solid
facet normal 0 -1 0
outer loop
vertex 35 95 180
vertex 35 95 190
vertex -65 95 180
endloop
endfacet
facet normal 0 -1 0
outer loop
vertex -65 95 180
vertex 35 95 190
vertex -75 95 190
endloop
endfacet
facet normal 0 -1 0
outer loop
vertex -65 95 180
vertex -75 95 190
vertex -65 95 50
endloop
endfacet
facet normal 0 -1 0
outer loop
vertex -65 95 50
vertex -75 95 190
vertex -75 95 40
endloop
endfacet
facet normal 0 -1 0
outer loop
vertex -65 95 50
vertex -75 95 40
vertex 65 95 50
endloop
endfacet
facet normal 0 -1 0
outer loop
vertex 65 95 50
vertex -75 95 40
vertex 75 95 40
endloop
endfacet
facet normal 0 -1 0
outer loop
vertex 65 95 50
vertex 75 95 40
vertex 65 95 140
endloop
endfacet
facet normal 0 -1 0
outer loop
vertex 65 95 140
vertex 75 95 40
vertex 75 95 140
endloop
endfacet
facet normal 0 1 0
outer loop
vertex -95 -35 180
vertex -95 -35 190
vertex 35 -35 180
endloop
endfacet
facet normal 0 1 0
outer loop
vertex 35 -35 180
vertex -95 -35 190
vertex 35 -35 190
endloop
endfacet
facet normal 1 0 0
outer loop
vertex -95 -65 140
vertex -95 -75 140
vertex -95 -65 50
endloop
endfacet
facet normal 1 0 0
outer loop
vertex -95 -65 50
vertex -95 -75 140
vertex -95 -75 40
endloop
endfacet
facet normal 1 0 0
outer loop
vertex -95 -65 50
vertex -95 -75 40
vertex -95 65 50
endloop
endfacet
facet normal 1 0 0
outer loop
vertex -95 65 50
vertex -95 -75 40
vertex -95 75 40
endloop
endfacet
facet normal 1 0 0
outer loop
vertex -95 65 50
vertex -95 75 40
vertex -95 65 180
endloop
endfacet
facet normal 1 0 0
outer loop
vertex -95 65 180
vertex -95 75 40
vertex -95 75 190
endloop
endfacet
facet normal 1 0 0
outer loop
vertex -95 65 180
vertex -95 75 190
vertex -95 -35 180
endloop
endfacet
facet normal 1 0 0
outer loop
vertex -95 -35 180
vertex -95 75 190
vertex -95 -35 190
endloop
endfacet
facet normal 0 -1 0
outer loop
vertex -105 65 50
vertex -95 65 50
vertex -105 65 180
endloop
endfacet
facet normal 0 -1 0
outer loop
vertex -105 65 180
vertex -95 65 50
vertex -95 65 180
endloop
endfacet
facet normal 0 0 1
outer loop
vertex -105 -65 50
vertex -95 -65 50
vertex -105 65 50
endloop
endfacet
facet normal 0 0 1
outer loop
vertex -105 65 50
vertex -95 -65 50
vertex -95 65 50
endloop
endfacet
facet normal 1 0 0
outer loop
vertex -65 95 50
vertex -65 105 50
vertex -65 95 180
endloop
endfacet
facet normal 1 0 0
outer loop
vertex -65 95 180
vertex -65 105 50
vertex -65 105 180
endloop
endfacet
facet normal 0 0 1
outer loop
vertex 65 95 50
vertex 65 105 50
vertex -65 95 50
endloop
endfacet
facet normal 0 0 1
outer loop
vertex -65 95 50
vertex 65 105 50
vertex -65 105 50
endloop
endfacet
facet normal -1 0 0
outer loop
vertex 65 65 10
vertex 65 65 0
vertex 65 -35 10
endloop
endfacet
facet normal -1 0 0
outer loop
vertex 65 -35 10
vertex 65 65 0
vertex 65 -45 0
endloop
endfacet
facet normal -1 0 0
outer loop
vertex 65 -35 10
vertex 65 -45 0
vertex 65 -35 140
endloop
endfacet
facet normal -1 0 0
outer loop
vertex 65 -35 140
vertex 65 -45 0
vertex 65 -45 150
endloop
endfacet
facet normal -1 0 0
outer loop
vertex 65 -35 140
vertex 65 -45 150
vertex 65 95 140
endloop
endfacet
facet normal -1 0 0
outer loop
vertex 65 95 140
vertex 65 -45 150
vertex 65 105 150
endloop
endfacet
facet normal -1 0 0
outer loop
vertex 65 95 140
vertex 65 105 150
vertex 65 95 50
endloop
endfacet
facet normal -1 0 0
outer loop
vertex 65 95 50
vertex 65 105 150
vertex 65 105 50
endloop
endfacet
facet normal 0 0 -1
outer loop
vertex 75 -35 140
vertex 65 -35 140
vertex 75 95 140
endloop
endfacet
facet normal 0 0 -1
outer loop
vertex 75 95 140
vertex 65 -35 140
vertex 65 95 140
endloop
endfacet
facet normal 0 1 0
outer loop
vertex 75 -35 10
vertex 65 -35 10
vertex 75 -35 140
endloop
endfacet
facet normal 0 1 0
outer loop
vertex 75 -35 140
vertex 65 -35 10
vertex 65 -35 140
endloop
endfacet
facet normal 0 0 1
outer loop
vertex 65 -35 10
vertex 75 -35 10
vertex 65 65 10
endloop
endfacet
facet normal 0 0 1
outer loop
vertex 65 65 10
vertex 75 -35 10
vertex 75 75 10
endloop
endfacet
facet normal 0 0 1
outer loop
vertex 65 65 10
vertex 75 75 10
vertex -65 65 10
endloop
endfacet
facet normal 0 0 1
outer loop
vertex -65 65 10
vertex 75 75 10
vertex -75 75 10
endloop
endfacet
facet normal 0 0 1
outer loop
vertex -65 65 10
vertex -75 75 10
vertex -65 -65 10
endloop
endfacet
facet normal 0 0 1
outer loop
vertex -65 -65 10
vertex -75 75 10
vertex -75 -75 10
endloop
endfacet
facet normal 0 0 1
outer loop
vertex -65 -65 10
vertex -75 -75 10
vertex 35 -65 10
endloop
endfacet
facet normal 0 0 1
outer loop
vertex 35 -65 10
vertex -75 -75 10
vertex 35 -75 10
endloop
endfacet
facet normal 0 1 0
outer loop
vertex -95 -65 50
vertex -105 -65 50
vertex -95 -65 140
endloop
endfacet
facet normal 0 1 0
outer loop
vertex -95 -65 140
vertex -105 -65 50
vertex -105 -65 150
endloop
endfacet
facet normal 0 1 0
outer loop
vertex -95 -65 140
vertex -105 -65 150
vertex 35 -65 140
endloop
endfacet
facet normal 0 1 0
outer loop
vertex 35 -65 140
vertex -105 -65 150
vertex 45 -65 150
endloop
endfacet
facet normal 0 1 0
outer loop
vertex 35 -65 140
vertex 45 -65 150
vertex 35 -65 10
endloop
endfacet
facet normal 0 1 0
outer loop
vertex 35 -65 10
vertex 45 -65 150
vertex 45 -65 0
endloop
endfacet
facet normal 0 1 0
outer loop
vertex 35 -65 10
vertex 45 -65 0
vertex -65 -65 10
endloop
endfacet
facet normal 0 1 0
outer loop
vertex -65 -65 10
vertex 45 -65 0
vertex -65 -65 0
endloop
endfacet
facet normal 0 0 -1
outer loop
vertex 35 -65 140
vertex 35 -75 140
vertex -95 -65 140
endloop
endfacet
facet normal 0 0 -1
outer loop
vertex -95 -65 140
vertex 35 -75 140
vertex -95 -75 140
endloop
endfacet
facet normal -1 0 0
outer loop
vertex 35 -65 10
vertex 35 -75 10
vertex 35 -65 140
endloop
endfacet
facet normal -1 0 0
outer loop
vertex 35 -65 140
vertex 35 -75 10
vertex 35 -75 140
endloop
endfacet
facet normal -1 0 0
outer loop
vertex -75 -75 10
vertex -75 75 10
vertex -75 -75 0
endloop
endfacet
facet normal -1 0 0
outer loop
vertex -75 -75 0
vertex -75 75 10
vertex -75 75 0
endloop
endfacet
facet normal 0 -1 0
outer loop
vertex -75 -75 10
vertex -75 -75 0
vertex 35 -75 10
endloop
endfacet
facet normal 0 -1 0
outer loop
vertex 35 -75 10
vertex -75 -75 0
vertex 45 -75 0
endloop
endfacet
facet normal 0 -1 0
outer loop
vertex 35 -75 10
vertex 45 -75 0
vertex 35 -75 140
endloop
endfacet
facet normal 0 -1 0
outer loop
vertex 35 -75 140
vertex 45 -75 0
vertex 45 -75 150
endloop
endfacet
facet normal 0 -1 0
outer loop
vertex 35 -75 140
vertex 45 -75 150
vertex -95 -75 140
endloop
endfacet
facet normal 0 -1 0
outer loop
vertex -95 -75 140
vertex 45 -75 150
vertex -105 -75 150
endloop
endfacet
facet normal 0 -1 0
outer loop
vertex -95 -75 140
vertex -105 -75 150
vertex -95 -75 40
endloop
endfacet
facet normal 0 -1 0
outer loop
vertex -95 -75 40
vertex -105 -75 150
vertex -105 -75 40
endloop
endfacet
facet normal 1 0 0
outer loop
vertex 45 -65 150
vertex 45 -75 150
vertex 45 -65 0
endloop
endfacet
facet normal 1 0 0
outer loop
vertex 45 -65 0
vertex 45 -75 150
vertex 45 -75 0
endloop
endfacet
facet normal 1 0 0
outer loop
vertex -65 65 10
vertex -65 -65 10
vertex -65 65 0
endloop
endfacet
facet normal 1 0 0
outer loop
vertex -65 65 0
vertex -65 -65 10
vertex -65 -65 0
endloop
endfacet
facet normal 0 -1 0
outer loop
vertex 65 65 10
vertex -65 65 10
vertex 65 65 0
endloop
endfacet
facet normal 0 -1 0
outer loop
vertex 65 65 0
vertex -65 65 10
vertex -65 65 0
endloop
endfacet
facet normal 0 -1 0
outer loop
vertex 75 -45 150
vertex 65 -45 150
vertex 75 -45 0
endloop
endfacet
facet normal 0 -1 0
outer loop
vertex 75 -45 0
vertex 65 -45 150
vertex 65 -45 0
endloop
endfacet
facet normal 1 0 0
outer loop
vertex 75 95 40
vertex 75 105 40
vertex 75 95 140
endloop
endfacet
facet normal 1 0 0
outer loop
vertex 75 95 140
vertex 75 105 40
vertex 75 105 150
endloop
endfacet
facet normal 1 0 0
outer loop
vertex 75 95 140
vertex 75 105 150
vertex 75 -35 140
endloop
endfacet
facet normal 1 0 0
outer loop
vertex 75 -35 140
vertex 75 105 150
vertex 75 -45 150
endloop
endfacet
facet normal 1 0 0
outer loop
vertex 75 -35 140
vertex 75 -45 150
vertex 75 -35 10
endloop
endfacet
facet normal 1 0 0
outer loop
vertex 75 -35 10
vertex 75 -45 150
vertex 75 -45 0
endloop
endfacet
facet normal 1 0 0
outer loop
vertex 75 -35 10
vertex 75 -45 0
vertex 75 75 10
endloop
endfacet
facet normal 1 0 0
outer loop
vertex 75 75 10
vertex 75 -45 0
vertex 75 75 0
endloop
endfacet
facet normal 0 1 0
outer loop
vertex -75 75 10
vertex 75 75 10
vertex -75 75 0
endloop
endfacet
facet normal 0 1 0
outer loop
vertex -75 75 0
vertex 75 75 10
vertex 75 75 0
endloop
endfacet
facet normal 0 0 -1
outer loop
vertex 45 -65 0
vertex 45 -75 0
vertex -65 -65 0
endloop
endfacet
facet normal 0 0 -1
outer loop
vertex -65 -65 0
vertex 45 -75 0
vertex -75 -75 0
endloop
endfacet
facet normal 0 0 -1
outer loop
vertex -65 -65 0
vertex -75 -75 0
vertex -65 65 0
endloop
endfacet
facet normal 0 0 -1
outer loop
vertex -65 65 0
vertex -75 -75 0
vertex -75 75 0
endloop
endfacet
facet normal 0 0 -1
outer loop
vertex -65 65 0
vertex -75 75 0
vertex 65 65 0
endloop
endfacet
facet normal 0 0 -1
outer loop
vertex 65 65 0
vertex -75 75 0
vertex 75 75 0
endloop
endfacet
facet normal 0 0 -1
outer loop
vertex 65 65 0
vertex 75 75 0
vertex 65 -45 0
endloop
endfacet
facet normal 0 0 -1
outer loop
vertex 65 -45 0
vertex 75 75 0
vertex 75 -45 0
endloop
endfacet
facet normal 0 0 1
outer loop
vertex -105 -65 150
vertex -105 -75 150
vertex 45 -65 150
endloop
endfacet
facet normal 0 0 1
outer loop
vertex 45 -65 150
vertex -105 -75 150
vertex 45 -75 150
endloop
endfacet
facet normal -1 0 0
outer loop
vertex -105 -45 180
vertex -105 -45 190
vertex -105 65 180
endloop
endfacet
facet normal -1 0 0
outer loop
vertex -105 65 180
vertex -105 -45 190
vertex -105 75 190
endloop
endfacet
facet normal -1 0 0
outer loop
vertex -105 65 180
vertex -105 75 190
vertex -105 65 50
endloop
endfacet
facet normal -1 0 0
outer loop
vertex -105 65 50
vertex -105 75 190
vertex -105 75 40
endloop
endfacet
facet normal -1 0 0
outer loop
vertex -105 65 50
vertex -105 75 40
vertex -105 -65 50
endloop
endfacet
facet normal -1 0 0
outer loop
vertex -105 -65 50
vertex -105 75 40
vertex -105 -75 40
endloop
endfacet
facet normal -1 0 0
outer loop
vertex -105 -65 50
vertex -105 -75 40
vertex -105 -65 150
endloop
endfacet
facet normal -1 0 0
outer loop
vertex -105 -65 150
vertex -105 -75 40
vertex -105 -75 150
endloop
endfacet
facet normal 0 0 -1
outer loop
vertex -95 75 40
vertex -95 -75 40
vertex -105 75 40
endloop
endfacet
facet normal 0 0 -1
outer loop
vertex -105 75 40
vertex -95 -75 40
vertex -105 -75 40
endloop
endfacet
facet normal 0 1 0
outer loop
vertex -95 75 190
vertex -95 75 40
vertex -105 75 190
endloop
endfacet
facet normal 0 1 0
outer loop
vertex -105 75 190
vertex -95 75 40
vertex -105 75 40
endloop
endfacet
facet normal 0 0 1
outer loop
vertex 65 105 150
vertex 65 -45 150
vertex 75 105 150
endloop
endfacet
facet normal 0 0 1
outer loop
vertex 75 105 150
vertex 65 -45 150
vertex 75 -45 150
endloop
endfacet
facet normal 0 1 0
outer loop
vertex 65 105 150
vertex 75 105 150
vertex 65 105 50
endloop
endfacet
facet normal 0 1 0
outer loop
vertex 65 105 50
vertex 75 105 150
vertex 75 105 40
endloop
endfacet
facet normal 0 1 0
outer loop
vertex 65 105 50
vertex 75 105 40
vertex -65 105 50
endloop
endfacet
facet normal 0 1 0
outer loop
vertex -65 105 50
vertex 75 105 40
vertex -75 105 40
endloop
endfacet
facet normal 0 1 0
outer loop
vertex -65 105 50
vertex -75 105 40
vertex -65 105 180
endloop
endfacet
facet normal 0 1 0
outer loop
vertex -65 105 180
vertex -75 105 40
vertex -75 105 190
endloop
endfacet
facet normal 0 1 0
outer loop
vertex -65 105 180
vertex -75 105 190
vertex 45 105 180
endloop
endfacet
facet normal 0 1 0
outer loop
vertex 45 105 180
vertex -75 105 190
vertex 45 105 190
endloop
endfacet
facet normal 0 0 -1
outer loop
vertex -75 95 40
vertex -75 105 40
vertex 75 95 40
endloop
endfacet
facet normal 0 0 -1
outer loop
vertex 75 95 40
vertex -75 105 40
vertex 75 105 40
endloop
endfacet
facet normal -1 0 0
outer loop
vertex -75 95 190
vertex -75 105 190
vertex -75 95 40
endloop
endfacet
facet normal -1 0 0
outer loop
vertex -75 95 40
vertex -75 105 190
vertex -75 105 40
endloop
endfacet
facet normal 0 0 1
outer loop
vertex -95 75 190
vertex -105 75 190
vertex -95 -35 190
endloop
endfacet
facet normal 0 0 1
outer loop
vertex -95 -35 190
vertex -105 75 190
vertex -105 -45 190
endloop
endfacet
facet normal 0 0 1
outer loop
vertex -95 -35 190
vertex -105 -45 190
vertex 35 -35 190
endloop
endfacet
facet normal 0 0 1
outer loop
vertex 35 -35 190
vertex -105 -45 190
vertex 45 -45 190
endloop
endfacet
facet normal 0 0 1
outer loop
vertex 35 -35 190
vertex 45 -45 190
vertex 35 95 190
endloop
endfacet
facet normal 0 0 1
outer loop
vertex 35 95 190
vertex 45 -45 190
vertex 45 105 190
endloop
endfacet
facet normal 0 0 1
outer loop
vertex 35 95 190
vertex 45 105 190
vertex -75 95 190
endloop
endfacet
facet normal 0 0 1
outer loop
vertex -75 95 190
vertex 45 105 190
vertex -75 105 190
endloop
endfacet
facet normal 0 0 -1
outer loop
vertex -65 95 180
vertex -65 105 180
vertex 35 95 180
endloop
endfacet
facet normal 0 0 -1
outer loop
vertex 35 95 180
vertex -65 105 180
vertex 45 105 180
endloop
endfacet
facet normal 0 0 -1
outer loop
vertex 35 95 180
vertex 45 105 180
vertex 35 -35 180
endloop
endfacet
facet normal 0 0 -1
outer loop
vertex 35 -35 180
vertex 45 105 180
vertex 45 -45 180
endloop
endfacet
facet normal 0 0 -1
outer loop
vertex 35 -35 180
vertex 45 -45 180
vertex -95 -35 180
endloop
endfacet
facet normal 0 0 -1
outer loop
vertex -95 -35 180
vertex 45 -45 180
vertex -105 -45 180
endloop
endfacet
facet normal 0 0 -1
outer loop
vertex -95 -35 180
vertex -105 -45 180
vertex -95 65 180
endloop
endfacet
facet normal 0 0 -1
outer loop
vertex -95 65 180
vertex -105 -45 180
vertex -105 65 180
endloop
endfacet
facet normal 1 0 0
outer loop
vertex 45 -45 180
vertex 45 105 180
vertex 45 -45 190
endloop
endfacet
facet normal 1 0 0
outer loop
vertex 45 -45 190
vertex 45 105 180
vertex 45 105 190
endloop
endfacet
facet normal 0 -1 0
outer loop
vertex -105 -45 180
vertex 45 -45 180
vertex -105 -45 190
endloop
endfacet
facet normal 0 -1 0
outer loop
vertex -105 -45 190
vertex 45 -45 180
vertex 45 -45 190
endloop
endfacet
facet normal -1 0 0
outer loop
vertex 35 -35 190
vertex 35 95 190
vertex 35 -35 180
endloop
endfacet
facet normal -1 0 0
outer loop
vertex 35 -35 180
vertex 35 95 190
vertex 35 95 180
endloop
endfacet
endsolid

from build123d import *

# Parameters (mm, degrees)
ESTRUSIONE_ESTRUSIONE1_DEPTH  = 10
SCHIZZO10_W                   = 10
SCHIZZO10_H                   = 10
ESTRUSIONE_ESTRUSIONE4_DEPTH  = 140
SCHIZZO11_W                   = 10
SCHIZZO11_H                   = 10
ESTRUSIONE_ESTRUSIONE5_DEPTH  = 140
SCHIZZO12_W                   = 10
SCHIZZO12_H                   = 10
ESTRUSIONE_ESTRUSIONE6_DEPTH  = 100
SCHIZZO13_W                   = 10
SCHIZZO13_H                   = 10
ESTRUSIONE_ESTRUSIONE7_DEPTH  = 140
SCHIZZO16_W                   = 10
SCHIZZO16_H                   = 10
ESTRUSIONE_ESTRUSIONE8_DEPTH  = 140
SCHIZZO17_W                   = 10
SCHIZZO17_H                   = 10
ESTRUSIONE_ESTRUSIONE9_DEPTH  = 140
SCHIZZO19_W                   = 10
SCHIZZO19_H                   = 10
ESTRUSIONE_ESTRUSIONE10_DEPTH = 100
SCHIZZO20_W                   = 10
SCHIZZO20_H                   = 10
ESTRUSIONE_ESTRUSIONE11_DEPTH = 140
SCHIZZO21_W                   = 10
SCHIZZO21_H                   = 10
ESTRUSIONE_ESTRUSIONE12_DEPTH = 140
SCHIZZO22_W                   = 10
SCHIZZO22_H                   = 10
ESTRUSIONE_ESTRUSIONE13_DEPTH = 110
SCHIZZO23_W                   = 10
SCHIZZO23_H                   = 10
ESTRUSIONE_ESTRUSIONE14_DEPTH = 140
SCHIZZO24_W                   = 10
SCHIZZO24_H                   = 10
ESTRUSIONE_ESTRUSIONE15_DEPTH = 110
SCHIZZO25_W                   = 10
SCHIZZO25_H                   = 10
ESTRUSIONE_ESTRUSIONE16_DEPTH = 140
SCHIZZO26_W                   = 10
SCHIZZO26_H                   = 10
ESTRUSIONE_ESTRUSIONE17_DEPTH = 140


with BuildPart() as part:
    # Schizzo1 → Estrusione-Estrusione1 (new body)
    with BuildSketch(Plane.XY):
        Polygon((45, -75), (-75, -75), (-75, 75), (75, 75), (75, -45), (65, -45), (65, 65), (-65, 65), (-65, -65), (45, -65), align=None)
    extrude(amount=ESTRUSIONE_ESTRUSIONE1_DEPTH)

    # Schizzo10 → Estrusione-Estrusione4 (add)
    with BuildSketch(Plane.XY.offset(10)):
        with Locations((40, -70)):
            Rectangle(SCHIZZO10_W, SCHIZZO10_H)
    extrude(amount=ESTRUSIONE_ESTRUSIONE4_DEPTH)

    # Schizzo11 → Estrusione-Estrusione5 (add)
    with BuildSketch(Plane.ZY.offset(-35)):
        with Locations((145, -70)):
            Rectangle(SCHIZZO11_W, SCHIZZO11_H)
    extrude(amount=ESTRUSIONE_ESTRUSIONE5_DEPTH)

    # Schizzo12 → Estrusione-Estrusione6 (add)
    with BuildSketch(Plane(origin=(0, 0, 140), x_dir=(-1, 0, 0), z_dir=(0, 0, -1))):
        with Locations((100, -70)):
            Rectangle(SCHIZZO12_W, SCHIZZO12_H)
    extrude(amount=ESTRUSIONE_ESTRUSIONE6_DEPTH)

    # Schizzo13 → Estrusione-Estrusione7 (add)
    with BuildSketch(Plane(origin=(0, -65, 0), x_dir=(1, 0, 0), z_dir=(0, 1, 0))):
        with Locations((-100, -45)):
            Rectangle(SCHIZZO13_W, SCHIZZO13_H)
    extrude(amount=ESTRUSIONE_ESTRUSIONE7_DEPTH)

    # Schizzo16 → Estrusione-Estrusione8 (add)
    with BuildSketch(Plane.XY.offset(10)):
        with Locations((70, -40)):
            Rectangle(SCHIZZO16_W, SCHIZZO16_H)
    extrude(amount=ESTRUSIONE_ESTRUSIONE8_DEPTH)

    # Schizzo17 → Estrusione-Estrusione9 (add)
    with BuildSketch(Plane(origin=(0, -35, 0), x_dir=(1, 0, 0), z_dir=(0, 1, 0))):
        with Locations((70, -145)):
            Rectangle(SCHIZZO17_W, SCHIZZO17_H)
    extrude(amount=ESTRUSIONE_ESTRUSIONE9_DEPTH)

    # Schizzo19 → Estrusione-Estrusione10 (add)
    with BuildSketch(Plane(origin=(0, 0, 140), x_dir=(-1, 0, 0), z_dir=(0, 0, -1))):
        with Locations((-70, 100)):
            Rectangle(SCHIZZO19_W, SCHIZZO19_H)
    extrude(amount=ESTRUSIONE_ESTRUSIONE10_DEPTH)

    # Schizzo20 → Estrusione-Estrusione11 (add)
    with BuildSketch(Plane.ZY.offset(-65)):
        with Locations((45, 100)):
            Rectangle(SCHIZZO20_W, SCHIZZO20_H)
    extrude(amount=ESTRUSIONE_ESTRUSIONE11_DEPTH)

    # Schizzo21 → Estrusione-Estrusione12 (add)
    with BuildSketch(Plane.XY.offset(50)):
        with Locations((-70, 100)):
            Rectangle(SCHIZZO21_W, SCHIZZO21_H)
    extrude(amount=ESTRUSIONE_ESTRUSIONE12_DEPTH)

    # Schizzo22 → Estrusione-Estrusione13 (add)
    with BuildSketch(Plane(origin=(-65, 0, 0), x_dir=(0, 0, -1), z_dir=(1, 0, 0))):
        with Locations((-185, 100)):
            Rectangle(SCHIZZO22_W, SCHIZZO22_H)
    extrude(amount=ESTRUSIONE_ESTRUSIONE13_DEPTH)

    # Schizzo23 → Estrusione-Estrusione14 (add)
    with BuildSketch(Plane.XY.offset(50)):
        with Locations((-100, 70)):
            Rectangle(SCHIZZO23_W, SCHIZZO23_H)
    extrude(amount=ESTRUSIONE_ESTRUSIONE14_DEPTH)

    # Schizzo24 → Estrusione-Estrusione15 (add)
    with BuildSketch(Plane.XZ.offset(-65)):
        with Locations((-100, 185)):
            Rectangle(SCHIZZO24_W, SCHIZZO24_H)
    extrude(amount=ESTRUSIONE_ESTRUSIONE15_DEPTH)

    # Schizzo25 → Estrusione-Estrusione16 (add)
    with BuildSketch(Plane(origin=(-95, 0, 0), x_dir=(0, 0, -1), z_dir=(1, 0, 0))):
        with Locations((-185, -40)):
            Rectangle(SCHIZZO25_W, SCHIZZO25_H)
    extrude(amount=ESTRUSIONE_ESTRUSIONE16_DEPTH)

    # Schizzo26 → Estrusione-Estrusione17 (add)
    with BuildSketch(Plane.XZ.offset(-95)):
        with Locations((40, 185)):
            Rectangle(SCHIZZO26_W, SCHIZZO26_H)
    extrude(amount=ESTRUSIONE_ESTRUSIONE17_DEPTH)


solid = part.part
